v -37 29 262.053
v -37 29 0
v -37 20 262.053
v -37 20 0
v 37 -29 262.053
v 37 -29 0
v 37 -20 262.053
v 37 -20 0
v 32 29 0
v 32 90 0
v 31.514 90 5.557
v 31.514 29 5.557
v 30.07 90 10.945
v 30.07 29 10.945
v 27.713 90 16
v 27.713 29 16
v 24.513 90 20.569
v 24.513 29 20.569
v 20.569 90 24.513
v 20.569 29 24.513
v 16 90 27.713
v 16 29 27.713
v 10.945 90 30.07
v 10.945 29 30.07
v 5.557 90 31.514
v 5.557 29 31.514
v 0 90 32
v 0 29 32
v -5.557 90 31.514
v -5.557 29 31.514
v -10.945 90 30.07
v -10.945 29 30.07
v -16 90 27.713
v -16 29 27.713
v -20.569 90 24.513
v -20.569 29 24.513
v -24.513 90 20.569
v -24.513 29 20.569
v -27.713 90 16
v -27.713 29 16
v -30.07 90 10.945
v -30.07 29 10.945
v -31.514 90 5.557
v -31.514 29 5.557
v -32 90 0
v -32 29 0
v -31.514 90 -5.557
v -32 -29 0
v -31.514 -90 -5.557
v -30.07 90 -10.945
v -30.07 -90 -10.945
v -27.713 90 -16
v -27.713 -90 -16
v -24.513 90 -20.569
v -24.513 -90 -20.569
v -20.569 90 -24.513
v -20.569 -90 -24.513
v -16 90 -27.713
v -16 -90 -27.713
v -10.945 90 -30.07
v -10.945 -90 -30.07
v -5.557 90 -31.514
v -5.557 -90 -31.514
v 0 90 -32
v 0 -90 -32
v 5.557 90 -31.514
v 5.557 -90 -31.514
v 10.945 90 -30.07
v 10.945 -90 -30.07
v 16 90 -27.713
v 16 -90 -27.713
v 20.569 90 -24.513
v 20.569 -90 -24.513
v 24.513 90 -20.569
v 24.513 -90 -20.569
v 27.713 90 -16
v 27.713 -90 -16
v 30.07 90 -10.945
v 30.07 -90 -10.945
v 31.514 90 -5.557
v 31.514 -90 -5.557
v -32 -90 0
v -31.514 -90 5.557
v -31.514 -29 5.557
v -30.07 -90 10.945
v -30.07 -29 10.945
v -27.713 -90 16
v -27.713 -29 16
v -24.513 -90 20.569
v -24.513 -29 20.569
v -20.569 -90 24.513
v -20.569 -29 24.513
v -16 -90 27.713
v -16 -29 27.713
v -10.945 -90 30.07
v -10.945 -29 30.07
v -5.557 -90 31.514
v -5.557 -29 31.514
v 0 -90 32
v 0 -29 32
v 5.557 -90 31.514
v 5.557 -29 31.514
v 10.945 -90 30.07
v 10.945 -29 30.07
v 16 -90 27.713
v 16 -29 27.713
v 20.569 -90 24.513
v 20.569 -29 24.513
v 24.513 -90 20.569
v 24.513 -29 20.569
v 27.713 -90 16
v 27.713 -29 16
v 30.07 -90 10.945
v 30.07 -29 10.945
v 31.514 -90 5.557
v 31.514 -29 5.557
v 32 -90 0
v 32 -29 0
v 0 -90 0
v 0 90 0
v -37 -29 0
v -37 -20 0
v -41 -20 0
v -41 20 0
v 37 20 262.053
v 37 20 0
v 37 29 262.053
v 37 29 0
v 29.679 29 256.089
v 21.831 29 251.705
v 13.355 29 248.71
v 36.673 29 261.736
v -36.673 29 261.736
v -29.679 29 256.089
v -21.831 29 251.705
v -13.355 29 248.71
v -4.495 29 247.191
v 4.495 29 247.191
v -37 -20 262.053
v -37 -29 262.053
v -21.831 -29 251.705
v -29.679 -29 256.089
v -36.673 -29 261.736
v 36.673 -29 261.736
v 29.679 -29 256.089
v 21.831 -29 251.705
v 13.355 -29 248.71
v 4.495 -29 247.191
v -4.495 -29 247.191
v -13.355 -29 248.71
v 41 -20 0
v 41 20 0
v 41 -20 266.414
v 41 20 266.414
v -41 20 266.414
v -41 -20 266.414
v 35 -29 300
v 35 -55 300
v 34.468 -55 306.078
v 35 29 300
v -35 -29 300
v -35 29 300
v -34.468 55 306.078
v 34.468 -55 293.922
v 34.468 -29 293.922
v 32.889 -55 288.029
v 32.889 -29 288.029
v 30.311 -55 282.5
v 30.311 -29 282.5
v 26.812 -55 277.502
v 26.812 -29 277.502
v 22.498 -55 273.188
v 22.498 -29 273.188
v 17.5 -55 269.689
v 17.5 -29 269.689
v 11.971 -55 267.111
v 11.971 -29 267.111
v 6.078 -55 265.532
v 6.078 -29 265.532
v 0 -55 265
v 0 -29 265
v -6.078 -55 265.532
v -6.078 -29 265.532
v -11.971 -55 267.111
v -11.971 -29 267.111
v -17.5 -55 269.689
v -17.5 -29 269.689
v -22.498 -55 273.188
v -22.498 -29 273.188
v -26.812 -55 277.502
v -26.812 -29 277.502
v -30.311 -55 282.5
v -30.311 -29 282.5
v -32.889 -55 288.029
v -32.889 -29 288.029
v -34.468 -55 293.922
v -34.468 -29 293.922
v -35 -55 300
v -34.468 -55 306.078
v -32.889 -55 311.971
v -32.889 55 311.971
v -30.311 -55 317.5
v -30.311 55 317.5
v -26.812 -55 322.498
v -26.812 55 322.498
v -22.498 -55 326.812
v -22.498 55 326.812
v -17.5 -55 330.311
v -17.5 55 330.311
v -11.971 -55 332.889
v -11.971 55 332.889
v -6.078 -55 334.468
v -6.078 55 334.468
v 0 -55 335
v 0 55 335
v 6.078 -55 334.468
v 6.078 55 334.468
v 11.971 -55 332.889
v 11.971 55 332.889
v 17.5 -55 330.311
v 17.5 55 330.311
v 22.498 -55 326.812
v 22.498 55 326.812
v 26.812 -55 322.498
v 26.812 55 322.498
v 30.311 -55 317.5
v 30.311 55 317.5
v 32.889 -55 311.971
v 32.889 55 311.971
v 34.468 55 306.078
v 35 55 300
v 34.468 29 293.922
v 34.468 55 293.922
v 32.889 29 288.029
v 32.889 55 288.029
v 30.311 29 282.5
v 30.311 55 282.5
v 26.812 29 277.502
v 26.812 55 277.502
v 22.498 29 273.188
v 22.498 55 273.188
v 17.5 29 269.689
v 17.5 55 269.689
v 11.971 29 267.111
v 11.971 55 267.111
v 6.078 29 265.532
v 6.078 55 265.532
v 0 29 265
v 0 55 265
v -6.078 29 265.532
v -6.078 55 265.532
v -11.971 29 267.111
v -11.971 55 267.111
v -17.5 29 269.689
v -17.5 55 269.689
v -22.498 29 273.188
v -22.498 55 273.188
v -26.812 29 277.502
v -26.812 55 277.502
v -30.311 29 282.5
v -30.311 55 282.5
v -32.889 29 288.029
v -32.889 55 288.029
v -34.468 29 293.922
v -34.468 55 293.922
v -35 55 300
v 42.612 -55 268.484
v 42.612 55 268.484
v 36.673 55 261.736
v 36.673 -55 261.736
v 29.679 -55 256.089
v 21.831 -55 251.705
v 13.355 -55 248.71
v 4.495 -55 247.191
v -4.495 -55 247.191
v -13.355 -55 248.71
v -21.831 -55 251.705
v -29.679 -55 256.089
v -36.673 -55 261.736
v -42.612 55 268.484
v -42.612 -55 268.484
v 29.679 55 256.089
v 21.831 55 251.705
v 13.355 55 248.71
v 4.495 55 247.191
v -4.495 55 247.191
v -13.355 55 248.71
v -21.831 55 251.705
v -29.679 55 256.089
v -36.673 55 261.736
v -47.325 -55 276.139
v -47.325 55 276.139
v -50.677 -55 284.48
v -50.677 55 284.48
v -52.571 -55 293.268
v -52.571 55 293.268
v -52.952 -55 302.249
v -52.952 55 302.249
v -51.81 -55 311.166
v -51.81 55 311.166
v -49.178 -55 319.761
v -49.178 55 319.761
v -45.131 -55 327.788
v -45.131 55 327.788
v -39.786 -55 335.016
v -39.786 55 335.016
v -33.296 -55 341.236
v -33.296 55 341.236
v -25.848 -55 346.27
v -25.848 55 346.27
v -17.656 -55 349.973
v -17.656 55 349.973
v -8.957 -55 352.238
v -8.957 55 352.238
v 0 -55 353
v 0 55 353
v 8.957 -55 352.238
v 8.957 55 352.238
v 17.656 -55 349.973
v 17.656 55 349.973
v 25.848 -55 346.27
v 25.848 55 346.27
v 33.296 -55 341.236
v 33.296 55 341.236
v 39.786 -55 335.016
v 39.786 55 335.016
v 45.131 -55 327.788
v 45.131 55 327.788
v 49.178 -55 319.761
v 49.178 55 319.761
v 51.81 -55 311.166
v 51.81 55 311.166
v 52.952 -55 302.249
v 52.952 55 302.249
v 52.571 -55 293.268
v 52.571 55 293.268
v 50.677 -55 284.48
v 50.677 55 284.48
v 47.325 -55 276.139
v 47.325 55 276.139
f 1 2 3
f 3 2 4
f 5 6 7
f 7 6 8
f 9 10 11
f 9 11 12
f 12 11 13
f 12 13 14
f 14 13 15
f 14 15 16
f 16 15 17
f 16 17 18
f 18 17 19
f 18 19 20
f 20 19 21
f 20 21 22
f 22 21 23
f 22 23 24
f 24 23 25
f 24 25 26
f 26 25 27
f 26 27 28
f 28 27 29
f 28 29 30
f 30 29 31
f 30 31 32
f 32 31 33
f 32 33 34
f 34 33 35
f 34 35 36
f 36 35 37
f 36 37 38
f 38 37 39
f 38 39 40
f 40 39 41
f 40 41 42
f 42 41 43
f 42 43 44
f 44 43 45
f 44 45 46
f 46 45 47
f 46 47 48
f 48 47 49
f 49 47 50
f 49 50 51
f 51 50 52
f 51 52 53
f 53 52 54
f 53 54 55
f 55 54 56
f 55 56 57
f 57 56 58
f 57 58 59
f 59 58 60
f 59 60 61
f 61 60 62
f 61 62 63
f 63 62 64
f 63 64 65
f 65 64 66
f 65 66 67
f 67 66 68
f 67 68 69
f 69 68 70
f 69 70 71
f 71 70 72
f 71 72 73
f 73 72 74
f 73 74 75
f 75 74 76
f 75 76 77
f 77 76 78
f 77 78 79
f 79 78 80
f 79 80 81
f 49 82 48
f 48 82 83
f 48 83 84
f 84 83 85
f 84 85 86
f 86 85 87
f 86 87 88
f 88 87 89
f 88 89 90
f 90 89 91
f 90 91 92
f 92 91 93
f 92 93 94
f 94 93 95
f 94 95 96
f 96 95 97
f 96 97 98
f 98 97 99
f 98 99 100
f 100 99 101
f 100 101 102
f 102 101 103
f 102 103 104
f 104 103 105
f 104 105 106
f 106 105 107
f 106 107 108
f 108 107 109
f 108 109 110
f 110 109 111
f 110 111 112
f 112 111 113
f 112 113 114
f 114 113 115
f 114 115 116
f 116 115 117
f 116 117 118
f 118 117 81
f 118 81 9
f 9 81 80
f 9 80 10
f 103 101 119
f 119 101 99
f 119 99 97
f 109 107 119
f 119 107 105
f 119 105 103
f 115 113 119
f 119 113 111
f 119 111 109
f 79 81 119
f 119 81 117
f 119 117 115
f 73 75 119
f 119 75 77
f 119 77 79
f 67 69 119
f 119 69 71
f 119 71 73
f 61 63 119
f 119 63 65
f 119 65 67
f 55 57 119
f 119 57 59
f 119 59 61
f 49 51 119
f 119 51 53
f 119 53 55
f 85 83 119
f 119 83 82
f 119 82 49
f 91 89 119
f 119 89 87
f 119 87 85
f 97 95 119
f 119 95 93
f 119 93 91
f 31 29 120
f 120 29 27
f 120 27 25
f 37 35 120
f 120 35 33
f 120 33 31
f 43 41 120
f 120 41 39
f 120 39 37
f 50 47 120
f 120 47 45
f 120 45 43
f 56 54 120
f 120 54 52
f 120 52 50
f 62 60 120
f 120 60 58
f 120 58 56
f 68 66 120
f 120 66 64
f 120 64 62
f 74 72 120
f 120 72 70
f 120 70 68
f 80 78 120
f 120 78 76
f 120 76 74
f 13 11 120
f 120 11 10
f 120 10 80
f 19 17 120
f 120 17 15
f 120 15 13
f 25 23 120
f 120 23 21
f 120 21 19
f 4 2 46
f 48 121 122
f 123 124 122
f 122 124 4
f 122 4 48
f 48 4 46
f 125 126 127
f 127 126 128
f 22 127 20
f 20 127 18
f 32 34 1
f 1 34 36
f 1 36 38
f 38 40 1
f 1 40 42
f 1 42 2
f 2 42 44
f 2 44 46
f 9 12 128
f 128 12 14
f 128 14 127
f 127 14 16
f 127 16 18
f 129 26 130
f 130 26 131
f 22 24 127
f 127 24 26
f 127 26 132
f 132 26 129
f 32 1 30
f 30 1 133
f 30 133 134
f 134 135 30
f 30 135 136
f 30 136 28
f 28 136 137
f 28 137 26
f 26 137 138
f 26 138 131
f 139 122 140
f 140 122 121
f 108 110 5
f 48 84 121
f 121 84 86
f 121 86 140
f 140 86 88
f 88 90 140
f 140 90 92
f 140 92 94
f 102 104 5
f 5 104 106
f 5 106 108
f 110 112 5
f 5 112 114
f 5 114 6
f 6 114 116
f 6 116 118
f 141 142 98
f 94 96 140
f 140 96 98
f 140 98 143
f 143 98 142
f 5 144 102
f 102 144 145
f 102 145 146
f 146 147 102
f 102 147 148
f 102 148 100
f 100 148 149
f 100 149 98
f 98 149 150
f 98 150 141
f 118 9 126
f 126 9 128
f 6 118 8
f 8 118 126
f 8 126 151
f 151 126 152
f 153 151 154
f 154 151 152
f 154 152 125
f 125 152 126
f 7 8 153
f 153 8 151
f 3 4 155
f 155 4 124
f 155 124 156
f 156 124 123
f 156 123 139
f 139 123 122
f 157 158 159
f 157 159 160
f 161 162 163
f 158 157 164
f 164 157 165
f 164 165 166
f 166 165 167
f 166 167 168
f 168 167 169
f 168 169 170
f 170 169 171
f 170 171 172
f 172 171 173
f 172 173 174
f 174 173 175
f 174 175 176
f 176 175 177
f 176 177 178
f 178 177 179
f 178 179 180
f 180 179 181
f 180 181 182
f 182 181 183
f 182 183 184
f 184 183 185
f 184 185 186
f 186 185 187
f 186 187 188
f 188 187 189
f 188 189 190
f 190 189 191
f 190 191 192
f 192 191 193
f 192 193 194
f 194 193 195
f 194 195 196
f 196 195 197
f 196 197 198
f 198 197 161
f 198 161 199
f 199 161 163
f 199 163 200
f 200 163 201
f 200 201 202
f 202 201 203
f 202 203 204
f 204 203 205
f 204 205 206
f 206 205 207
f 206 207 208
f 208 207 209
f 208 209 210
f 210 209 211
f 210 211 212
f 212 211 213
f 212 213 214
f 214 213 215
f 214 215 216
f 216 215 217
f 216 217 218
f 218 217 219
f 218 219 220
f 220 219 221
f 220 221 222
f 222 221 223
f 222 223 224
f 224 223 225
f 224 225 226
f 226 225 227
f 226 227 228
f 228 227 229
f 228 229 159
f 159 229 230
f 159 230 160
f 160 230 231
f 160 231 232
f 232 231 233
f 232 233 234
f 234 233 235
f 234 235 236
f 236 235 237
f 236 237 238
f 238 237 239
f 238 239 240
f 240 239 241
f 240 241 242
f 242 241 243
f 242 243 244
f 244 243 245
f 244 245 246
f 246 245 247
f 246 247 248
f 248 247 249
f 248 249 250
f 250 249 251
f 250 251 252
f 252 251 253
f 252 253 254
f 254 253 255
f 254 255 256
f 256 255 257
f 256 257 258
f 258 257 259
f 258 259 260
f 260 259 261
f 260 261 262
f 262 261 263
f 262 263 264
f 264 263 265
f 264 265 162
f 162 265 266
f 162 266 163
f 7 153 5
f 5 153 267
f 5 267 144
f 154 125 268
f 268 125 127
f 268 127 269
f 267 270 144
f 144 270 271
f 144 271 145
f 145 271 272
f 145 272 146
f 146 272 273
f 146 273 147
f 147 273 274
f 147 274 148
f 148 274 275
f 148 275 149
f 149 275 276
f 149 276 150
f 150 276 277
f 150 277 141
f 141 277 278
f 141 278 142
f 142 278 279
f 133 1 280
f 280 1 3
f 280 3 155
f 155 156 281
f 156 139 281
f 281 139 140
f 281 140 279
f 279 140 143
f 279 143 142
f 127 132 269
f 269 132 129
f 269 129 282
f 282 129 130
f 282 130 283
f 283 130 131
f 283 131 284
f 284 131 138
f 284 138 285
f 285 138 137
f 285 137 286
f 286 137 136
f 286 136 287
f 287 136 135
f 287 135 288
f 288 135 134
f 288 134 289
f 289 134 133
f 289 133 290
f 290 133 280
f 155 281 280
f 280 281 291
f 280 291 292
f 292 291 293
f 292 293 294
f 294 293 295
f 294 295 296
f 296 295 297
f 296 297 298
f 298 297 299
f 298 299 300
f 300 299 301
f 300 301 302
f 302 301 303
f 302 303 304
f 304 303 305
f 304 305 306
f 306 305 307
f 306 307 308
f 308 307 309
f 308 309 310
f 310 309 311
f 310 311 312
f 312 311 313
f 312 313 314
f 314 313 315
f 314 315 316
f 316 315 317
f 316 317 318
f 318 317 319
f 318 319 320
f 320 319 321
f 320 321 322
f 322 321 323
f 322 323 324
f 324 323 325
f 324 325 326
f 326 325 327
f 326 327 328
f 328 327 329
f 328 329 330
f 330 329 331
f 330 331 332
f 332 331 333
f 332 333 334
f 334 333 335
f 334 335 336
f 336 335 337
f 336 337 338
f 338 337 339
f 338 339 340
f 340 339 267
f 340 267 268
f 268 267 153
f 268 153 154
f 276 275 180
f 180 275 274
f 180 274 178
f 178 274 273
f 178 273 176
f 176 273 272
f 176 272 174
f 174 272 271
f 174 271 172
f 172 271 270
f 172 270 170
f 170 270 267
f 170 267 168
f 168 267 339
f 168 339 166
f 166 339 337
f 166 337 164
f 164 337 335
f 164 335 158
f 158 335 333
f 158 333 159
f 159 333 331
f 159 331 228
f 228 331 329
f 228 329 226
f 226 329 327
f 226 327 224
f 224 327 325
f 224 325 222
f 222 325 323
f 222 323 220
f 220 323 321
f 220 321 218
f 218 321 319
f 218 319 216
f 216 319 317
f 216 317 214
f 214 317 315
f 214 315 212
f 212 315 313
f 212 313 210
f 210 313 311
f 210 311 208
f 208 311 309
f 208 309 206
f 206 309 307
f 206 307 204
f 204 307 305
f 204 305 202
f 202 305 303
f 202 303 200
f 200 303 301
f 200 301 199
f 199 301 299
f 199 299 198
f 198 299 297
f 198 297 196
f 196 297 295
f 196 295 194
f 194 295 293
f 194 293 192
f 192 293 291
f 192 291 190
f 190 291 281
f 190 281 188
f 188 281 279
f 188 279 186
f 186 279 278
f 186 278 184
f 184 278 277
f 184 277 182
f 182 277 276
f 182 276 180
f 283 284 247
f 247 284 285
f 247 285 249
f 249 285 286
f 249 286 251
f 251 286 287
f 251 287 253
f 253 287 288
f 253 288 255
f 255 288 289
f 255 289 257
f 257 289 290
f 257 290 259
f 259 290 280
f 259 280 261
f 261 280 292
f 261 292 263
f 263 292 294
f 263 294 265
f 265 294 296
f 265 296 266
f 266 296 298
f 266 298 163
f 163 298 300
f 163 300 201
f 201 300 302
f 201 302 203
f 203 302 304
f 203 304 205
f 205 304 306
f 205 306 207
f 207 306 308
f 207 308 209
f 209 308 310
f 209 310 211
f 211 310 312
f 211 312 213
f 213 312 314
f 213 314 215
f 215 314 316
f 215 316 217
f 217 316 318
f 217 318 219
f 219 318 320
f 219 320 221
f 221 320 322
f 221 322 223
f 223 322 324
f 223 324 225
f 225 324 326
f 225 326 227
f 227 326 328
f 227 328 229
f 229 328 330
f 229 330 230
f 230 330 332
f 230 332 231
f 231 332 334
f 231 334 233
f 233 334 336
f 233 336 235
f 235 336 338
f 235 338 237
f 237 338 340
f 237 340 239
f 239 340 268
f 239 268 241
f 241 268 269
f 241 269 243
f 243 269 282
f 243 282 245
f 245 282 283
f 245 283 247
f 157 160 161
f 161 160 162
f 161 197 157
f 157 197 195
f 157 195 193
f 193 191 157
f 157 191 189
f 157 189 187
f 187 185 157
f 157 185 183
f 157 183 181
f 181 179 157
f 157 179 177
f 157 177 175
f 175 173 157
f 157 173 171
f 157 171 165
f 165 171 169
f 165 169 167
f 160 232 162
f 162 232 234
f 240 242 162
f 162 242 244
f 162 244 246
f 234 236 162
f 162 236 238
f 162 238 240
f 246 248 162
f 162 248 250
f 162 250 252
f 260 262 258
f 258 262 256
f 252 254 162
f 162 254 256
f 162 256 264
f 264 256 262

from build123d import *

# Parameters (mm, degrees)
EXTRUDE_1_DEPTH      = 90
EXTRUDE_1_DEPTH_BACK = 90
SKETCH_1_R           = 32
SKETCH_2_W           = 74
SKETCH_2_H           = 58
EXTRUDE_2_DEPTH      = 300
SKETCH_3_W           = 4
SKETCH_3_H           = 40
EXTRUDE_3_DEPTH      = 300
EXTRUDE_4_DEPTH      = 55
EXTRUDE_4_DEPTH_BACK = 55
SKETCH_4_R           = 53
SKETCH_4_R_2         = 35


with BuildPart() as part:
    # 草图1 → 凸台-拉伸1 (new, two sides: drawn at the far end of the back side and taken through both)
    with BuildSketch(Plane(origin=(0, 0, 0), x_dir=(1, 0, 0), z_dir=(0, 1, 0)).offset(-EXTRUDE_1_DEPTH_BACK)):
        Circle(SKETCH_1_R)
    extrude(amount=EXTRUDE_1_DEPTH + EXTRUDE_1_DEPTH_BACK)

    # 草图2 → 凸台-拉伸2 (add)
    with BuildSketch(Plane.XY):
        Rectangle(SKETCH_2_W, SKETCH_2_H)
    extrude(amount=EXTRUDE_2_DEPTH)

    # 草图3 → 凸台-拉伸3 (add)
    with BuildSketch(Plane.XY):
        with Locations((39, 0)):
            Rectangle(SKETCH_3_W, SKETCH_3_H)
        with Locations((-39, 0)):
            Rectangle(SKETCH_3_W, SKETCH_3_H)
    extrude(amount=EXTRUDE_3_DEPTH)

    # 草图4 → 凸台-拉伸4 (add, two sides: drawn at the far end of the back side and taken through both)
    with BuildSketch(Plane(origin=(0, 0, 0), x_dir=(1, 0, 0), z_dir=(0, 1, 0)).offset(-EXTRUDE_4_DEPTH_BACK)):
        with Locations((0, -300)):
            Circle(SKETCH_4_R)
        with Locations((0, -300)):
            Circle(SKETCH_4_R_2, mode=Mode.SUBTRACT)
    extrude(amount=EXTRUDE_4_DEPTH + EXTRUDE_4_DEPTH_BACK)


solid = part.part
